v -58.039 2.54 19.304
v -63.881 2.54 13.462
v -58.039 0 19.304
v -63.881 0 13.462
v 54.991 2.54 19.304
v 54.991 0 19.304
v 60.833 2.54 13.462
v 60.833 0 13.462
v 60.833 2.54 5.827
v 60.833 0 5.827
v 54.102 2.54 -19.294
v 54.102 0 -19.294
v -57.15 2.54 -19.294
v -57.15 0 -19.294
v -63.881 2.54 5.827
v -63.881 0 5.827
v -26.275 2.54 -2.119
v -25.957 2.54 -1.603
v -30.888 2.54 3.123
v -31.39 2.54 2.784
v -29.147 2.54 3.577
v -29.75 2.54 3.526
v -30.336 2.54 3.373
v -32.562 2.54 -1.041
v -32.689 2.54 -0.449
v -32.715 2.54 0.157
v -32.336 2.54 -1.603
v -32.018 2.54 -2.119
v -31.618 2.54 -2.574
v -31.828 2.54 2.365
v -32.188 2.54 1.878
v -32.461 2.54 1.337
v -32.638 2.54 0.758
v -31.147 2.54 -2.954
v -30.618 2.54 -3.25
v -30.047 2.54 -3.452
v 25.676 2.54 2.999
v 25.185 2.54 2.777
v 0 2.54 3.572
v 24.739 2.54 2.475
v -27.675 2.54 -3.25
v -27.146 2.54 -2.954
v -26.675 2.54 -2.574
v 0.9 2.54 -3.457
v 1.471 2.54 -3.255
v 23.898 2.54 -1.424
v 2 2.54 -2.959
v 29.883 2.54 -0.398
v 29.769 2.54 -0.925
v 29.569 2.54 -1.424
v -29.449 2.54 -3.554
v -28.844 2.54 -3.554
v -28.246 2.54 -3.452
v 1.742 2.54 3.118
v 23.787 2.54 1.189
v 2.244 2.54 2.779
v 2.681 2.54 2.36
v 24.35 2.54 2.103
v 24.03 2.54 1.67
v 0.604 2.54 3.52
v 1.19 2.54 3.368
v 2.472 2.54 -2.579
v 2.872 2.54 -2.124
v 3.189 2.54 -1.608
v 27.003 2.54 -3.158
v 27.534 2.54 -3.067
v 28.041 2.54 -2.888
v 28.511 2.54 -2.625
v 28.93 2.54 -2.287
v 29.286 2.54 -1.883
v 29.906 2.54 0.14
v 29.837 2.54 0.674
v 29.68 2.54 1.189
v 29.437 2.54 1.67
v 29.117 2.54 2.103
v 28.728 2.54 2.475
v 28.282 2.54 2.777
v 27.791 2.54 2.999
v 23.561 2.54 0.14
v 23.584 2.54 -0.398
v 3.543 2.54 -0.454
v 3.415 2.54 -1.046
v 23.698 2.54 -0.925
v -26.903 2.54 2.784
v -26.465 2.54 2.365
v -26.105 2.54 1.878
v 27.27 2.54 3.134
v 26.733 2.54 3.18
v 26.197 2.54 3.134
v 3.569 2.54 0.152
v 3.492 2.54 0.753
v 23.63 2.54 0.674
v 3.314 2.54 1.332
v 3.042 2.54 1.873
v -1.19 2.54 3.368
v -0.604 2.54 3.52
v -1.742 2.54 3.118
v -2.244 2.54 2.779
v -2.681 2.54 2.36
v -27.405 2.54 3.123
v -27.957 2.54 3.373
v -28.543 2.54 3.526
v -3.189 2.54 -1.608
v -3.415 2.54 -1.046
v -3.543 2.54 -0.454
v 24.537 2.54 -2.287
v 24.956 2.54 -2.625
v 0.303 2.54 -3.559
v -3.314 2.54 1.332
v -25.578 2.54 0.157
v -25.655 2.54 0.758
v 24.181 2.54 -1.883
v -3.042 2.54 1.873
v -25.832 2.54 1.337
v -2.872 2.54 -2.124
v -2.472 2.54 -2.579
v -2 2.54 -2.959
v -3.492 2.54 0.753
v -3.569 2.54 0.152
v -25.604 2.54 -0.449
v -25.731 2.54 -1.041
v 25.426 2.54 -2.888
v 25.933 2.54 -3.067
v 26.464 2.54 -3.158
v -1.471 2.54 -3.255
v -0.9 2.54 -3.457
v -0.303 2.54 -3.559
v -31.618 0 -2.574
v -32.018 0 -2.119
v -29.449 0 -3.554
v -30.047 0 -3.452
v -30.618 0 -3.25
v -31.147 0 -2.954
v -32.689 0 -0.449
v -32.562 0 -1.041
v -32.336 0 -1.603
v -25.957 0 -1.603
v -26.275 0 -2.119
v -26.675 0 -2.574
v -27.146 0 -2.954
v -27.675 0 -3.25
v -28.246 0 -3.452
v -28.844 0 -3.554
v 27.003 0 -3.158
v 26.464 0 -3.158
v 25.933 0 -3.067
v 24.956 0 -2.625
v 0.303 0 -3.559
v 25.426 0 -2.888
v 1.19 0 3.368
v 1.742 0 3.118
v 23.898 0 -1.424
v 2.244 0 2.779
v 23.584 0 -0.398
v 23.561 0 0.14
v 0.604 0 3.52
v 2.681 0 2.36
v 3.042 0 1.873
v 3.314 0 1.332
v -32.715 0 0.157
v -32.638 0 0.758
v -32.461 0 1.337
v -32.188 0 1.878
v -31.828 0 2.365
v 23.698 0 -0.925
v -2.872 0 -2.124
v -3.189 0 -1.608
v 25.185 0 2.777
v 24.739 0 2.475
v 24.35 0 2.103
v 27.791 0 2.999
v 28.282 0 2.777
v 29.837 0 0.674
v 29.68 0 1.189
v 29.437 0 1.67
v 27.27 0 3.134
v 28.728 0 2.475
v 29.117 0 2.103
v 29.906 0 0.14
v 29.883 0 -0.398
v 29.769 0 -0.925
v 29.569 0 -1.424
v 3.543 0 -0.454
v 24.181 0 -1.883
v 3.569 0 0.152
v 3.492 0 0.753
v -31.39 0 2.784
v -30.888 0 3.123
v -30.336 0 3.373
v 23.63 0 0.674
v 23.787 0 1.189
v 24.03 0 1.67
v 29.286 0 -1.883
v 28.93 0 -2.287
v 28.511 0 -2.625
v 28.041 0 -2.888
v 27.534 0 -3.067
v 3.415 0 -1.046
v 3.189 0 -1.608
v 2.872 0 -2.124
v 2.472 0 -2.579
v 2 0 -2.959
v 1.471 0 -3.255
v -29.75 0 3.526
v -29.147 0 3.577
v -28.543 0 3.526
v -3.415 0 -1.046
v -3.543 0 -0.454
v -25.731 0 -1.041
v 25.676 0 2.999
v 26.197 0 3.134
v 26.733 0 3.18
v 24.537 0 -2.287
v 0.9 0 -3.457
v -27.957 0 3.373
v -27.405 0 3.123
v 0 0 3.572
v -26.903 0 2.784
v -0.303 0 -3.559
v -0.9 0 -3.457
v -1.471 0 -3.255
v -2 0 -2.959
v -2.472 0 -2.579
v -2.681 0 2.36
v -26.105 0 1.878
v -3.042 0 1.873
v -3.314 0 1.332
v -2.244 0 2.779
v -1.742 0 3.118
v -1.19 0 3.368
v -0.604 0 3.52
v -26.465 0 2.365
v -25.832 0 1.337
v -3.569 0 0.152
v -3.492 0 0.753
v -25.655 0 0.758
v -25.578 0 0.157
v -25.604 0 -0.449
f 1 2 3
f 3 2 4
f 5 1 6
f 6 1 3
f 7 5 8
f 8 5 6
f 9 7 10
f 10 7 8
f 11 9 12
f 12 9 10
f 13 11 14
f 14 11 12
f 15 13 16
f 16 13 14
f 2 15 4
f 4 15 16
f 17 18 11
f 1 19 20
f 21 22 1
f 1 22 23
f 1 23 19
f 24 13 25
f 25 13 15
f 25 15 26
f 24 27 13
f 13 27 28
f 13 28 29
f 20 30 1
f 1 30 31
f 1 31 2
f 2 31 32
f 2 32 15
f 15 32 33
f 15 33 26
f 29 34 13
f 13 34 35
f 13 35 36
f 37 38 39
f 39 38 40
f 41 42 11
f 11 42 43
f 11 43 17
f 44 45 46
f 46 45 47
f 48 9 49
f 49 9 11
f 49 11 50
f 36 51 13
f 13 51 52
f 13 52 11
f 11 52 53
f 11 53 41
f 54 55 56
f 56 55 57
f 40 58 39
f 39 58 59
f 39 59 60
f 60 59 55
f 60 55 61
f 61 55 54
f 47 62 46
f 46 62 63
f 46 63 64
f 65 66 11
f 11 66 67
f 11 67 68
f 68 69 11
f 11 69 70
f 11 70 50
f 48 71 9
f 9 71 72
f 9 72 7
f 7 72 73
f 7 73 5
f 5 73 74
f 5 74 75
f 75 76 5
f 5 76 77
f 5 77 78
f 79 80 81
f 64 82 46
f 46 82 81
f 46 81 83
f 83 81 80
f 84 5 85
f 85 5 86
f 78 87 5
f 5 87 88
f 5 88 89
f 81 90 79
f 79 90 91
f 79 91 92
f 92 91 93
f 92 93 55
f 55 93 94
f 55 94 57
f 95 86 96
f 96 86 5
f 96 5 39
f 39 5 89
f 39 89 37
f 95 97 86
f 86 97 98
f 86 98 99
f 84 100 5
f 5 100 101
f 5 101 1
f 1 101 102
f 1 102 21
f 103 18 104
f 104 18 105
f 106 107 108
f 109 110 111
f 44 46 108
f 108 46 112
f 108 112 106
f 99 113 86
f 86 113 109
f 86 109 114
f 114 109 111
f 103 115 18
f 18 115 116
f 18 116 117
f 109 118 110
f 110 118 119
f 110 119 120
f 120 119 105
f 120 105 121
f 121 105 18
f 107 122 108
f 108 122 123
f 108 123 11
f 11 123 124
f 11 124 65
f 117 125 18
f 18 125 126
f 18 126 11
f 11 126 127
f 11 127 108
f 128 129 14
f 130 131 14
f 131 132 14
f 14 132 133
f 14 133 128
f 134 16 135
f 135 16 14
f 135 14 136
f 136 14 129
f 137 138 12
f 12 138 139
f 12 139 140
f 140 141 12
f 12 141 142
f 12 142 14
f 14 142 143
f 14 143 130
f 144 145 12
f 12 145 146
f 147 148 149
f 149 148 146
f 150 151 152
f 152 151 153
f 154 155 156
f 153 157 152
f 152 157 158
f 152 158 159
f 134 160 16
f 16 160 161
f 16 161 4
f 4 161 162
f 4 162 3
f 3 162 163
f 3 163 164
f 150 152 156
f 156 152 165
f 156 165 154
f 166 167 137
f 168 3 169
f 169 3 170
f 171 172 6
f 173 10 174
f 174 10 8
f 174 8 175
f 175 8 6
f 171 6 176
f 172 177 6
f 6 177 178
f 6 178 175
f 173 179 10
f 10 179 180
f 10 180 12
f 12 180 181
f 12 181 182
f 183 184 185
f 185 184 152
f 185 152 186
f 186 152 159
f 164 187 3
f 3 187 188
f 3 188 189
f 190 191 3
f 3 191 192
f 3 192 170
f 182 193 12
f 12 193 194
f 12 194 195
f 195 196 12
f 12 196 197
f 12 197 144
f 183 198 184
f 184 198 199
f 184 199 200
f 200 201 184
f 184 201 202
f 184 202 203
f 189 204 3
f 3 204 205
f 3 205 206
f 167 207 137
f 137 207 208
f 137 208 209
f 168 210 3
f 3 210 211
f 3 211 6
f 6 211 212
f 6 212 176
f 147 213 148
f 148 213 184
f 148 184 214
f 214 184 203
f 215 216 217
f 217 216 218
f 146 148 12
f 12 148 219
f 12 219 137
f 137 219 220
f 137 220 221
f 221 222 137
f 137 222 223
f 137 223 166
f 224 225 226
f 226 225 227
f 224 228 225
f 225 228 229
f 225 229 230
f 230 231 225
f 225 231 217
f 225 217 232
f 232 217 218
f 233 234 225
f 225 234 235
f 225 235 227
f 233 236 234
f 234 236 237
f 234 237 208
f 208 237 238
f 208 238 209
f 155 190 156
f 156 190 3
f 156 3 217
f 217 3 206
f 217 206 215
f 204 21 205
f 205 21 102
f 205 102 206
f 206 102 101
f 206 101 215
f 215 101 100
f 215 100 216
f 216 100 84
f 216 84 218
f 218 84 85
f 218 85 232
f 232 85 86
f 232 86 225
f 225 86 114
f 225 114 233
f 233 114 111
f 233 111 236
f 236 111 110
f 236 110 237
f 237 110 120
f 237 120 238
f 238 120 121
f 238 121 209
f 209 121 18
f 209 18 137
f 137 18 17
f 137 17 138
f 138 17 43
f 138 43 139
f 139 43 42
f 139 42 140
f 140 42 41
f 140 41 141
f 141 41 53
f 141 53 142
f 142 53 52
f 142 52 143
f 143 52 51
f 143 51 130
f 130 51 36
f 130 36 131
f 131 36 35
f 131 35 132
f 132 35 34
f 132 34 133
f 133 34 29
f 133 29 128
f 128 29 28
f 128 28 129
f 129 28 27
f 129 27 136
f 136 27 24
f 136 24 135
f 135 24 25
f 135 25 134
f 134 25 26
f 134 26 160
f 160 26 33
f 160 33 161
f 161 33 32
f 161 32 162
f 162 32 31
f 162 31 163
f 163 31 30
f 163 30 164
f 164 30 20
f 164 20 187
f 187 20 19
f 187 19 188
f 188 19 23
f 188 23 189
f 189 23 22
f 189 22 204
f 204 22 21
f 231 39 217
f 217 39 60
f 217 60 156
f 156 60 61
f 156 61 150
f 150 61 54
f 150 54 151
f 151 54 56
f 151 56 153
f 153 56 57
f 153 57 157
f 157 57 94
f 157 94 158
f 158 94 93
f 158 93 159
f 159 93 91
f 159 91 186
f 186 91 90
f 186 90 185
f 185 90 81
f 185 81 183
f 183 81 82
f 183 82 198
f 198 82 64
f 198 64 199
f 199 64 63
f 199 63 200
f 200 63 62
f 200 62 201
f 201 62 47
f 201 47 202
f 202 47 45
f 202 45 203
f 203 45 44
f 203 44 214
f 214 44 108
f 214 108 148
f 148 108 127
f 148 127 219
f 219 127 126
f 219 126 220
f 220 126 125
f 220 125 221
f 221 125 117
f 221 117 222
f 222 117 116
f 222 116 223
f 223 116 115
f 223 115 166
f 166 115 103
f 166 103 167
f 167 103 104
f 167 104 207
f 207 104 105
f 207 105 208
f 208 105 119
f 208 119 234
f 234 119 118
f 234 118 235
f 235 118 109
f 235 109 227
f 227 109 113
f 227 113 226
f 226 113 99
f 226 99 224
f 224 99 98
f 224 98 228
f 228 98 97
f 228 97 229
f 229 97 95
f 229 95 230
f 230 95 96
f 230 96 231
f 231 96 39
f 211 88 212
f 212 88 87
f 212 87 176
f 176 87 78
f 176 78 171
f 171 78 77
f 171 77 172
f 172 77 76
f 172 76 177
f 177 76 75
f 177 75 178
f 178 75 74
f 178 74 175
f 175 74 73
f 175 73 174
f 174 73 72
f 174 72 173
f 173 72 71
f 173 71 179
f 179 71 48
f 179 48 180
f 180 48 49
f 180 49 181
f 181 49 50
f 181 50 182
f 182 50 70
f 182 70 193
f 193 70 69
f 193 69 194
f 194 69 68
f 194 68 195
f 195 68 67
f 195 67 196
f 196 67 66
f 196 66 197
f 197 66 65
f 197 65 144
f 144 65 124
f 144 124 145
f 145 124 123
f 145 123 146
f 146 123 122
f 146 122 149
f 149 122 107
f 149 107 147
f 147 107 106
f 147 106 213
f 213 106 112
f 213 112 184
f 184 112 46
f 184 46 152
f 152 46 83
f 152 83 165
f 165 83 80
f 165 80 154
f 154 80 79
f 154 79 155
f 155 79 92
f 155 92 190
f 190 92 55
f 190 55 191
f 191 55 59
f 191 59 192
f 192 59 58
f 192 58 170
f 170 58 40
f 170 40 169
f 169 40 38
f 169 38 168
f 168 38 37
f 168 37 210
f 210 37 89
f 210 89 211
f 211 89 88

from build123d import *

# Parameters (mm, degrees)
BOSS_EXTRUDE1_DEPTH = 2.54
SKETCH2_R           = 3.571875
SKETCH2_R_2         = 3.175
CUT_EXTRUDE4_DEPTH  = 67.782319344


with BuildPart() as part:
    # Sketch1 → Boss-Extrude1 (new body)
    with BuildSketch(Plane(origin=(0, 0, 0), x_dir=(1, 0, 0), z_dir=(0, 1, 0))):
        Polygon((54.991, -19.304), (60.833, -13.462), (60.833, -5.82667054), (54.102, 19.293763446), (-57.15, 19.293763446), (-63.881, -5.82667054), (-63.881, -13.462), (-58.039, -19.304), align=None)
    extrude(amount=BOSS_EXTRUDE1_DEPTH)

    # Sketch2 → Cut-Extrude4 (cut, through all)
    with BuildSketch(Plane(origin=(0, 2.54, 0), x_dir=(1, 0, 0), z_dir=(0, 1, 0))):
        with Locations(Location((-29.1465, -0.005118277, 0), (0, 0, 270))):
            Circle(SKETCH2_R)
        with Locations(Location((0, 0, 0), (0, 0, 270))):
            Circle(SKETCH2_R)
        with Locations(Location((26.7335, -0.005118277, 0), (0, 0, 270))):
            Circle(SKETCH2_R_2)
    extrude(amount=-CUT_EXTRUDE4_DEPTH, mode=Mode.SUBTRACT)


solid = part.part
